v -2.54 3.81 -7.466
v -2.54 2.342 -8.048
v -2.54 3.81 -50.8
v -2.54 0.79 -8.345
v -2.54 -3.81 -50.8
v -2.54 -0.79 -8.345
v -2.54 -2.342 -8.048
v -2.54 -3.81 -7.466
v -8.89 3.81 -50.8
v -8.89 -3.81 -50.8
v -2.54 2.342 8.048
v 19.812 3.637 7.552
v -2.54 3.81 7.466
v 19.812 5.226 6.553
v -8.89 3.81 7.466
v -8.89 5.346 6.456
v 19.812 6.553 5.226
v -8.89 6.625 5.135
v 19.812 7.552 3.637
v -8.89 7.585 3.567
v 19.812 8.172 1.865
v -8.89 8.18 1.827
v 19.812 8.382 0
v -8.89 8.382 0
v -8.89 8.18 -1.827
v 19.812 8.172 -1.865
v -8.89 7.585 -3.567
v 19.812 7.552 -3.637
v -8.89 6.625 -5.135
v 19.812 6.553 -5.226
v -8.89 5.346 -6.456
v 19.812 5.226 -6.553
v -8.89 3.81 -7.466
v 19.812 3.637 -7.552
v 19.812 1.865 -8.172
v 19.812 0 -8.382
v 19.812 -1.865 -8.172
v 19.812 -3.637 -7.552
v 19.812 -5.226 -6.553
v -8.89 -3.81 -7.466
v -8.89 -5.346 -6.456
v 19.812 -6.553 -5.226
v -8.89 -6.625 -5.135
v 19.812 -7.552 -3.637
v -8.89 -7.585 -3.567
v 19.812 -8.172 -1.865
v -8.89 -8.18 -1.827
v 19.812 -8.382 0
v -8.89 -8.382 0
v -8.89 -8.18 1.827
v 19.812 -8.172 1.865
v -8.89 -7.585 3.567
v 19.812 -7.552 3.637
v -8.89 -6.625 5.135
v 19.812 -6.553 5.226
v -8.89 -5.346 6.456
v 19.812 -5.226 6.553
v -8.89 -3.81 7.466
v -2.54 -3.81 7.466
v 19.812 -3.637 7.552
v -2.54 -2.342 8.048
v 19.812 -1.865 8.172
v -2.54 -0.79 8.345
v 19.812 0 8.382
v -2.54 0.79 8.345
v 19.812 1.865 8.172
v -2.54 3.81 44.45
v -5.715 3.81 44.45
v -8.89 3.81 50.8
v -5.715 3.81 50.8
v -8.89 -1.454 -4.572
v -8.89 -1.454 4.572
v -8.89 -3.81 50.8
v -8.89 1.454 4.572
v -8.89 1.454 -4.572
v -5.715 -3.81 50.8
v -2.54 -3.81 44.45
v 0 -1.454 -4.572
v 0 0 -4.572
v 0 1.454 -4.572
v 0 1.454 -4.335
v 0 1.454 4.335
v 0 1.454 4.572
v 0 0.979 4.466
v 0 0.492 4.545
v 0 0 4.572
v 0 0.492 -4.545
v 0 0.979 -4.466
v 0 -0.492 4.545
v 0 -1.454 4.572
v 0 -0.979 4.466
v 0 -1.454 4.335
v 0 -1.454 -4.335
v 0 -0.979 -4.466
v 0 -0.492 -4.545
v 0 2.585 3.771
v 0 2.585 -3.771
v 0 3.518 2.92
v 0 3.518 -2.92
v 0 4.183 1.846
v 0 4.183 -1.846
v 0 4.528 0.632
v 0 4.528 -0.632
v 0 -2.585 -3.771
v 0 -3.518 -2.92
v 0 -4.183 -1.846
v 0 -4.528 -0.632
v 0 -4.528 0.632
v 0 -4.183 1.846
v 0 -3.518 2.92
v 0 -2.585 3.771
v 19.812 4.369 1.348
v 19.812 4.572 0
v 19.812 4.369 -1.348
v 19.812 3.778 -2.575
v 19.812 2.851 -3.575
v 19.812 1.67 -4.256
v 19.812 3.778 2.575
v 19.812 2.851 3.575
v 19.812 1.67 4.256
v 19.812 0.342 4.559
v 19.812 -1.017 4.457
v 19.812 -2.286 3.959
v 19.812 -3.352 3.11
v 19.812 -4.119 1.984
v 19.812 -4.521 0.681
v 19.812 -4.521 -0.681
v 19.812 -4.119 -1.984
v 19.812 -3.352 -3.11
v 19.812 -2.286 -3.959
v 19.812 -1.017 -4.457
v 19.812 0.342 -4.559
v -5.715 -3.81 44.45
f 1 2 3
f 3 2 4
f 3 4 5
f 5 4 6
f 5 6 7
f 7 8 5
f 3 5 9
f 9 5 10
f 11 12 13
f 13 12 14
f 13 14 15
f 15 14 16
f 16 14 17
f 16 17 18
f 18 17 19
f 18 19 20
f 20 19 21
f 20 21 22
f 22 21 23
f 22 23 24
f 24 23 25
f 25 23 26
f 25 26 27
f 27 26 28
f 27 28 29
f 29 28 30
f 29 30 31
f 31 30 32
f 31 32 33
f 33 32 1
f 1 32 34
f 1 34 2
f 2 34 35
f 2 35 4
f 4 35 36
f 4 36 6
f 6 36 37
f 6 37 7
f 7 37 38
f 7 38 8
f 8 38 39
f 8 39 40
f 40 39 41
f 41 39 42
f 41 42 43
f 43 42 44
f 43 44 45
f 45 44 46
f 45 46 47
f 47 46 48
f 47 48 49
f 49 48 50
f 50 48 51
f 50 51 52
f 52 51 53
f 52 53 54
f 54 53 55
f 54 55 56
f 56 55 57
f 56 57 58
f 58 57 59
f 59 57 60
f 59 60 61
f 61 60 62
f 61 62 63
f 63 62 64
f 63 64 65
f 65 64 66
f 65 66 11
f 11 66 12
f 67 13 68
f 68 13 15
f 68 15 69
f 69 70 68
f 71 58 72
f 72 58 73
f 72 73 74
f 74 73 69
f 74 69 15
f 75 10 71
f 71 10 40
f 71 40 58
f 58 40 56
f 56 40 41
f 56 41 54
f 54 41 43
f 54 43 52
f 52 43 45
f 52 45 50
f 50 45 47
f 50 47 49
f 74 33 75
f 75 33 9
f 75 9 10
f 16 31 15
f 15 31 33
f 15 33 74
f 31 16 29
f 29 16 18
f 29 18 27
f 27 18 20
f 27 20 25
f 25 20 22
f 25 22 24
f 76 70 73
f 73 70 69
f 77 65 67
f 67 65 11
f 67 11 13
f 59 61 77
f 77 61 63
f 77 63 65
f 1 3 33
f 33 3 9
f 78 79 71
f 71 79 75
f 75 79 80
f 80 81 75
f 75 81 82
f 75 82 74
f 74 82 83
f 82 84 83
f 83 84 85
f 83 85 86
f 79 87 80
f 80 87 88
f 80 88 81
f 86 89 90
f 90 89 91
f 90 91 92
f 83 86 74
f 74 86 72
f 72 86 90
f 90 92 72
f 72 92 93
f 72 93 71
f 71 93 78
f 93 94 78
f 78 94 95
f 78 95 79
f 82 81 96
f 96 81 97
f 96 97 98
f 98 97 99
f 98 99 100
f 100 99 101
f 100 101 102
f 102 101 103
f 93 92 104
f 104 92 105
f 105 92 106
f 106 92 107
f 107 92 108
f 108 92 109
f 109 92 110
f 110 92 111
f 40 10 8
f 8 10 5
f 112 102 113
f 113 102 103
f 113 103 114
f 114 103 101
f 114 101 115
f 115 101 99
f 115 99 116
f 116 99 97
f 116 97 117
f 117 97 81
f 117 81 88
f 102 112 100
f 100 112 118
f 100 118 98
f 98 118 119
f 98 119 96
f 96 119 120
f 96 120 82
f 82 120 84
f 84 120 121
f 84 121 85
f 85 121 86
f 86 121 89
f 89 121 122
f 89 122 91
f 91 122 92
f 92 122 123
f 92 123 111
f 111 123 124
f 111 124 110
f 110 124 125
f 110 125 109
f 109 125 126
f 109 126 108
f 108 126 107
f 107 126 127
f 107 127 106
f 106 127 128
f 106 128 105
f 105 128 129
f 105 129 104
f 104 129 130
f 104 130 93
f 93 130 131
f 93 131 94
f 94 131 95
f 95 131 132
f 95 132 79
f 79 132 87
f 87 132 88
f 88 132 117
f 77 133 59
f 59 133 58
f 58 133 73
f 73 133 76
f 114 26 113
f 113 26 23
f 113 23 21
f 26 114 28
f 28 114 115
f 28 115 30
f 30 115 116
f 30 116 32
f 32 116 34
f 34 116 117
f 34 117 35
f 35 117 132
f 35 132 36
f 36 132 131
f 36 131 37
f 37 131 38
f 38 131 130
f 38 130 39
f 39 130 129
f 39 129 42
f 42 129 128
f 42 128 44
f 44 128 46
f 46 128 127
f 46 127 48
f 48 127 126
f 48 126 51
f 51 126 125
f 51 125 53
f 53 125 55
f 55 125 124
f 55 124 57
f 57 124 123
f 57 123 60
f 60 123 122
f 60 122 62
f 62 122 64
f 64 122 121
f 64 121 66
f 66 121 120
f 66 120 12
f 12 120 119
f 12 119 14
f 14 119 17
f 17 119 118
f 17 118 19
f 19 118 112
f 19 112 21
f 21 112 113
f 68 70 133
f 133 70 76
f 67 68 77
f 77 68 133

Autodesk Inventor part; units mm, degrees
ref_plane "YZ Plane" through (0, 0, 0) normal (1, 0, 0) x (0, 1, 0)
ref_plane "XZ Plane" through (0, 0, 0) normal (0, 1, 0) x (-1, 0, 0)
ref_plane "XY Plane" through (0, 0, 0) normal (0, 0, 1) x (1, 0, 0)
sketch "Sketch1" plane through (0, 0, 0) normal (1, 0, 0) x (0, 1, 0)
  circle A0 centre (0, 0) radius 4.572
  circle A1 centre (0, 0) radius 8.382
  dimension "d0" = 9.144
  dimension "d1" = 3.81
extrude "Extrusion1" add sketch "Sketch1" along normal blind 19.812
sketch "Sketch2" plane through (0, 0, 0) normal (-1, 0, 0) x (0, 0, 1)
  circle A0 centre (0, 0) radius 8.382
  circle A1 centre (0, 0) radius 7.747
  circle A2 centre (0, 0) radius 8.382 projected
  dimension "d42" = 0
extrude "Extrusion2" add sketch "Sketch2" along normal blind 2.54 contours A0 | A1
sketch "Sketch10" plane through (0, 0, 0) normal (1, 0, 0) x (0, 0, -1)
  circle A0 centre (0, 0) radius 1.4542
  line L0 (-4.572, 1.4542) -> (4.572, 1.4542)
  line L1 (4.572, 1.4542) -> (4.572, -1.4542)
  line L2 (4.572, -1.4542) -> (-4.572, -1.4542)
  line L3 (-4.572, -1.4542) -> (-4.572, 1.4542)
  circle A1 centre (0, 0) radius 4.572 projected
  dimension "d43" = 0
  dimension "d44" = 0
extrude "Extrusion7" cut sketch "Sketch10" against normal blind 22.225 contours A0 | A0 L0 A1 L2 | A0 L2 A1 L0 | A1 L3 L0 | L0 L1 A1 | A1 L1 L2 | L2 L3 A1
sketch "Sketch24" plane through (-2.54, 0, 0) normal (-1, 0, 0) x (0, 0, 1)
  line L0 (50.8, -3.81) -> (-50.8, -3.81)
  line L1 (-50.8, -3.81) -> (-50.8, 3.81)
  line L2 (-50.8, 3.81) -> (50.8, 3.81)
  line L3 (50.8, 3.81) -> (50.8, -3.81)
  line L4 (4.572, 1.4542) -> (4.572, -1.4542) projected
  line L5 (4.572, -1.4542) -> (-4.572, -1.4542) projected
  line L6 (-4.572, -1.4542) -> (-4.572, 1.4542) projected
  line L7 (-4.572, 1.4542) -> (4.572, 1.4542) projected
  circle A0 centre (0, 0) radius 8.382 projected
  dimension "d90" = 101.6
  dimension "d91" = 50.8
  dimension "d92" = 3.81
  dimension "d93" = 3.81
extrude "Extrusion18" add sketch "Sketch24" along normal blind 6.35 contours L0 A0 L2 L3 | L0 A0 L2 | L0 L1 L2 A0
sketch "Sketch25" plane through (-2.54, 0, 0) normal (-1, 0, 0) x (0, 0, 1)
  line L0 (-7.466, 3.81) -> (7.466, 3.81) projected
  arc A0 (7.466, 3.81) -> (-7.466, 3.81) centre (0, 0) ccw projected
  line L1 (7.466, -3.81) -> (-7.466, -3.81) projected
  arc A1 (-7.466, -3.81) -> (7.466, -3.81) centre (0, 0) ccw projected
extrude "Extrusion19" add sketch "Sketch25" along normal blind 6.35
sketch "Sketch26" plane through (-2.54, -3.81, 7.466) normal (0, -1, 0) x (1, 0, 0)
  line L0 (0, 0) -> (0, 43.334) projected
  line L1 (0, 43.334) -> (-3.175, 43.334)
  line L2 (-3.175, 43.334) -> (-3.175, 36.984)
  line L3 (-3.175, 36.984) -> (0, 36.984)
  line L4 (0, 36.984) -> (0, 43.334)
  point P0 (2.54, -7.466)
  dimension "d98" = 3.175
  dimension "d99" = 6.35
extrude "Extrusion20" cut sketch "Sketch26" against normal blind 25.4
properties part number "LiftMotorHousingOne"
